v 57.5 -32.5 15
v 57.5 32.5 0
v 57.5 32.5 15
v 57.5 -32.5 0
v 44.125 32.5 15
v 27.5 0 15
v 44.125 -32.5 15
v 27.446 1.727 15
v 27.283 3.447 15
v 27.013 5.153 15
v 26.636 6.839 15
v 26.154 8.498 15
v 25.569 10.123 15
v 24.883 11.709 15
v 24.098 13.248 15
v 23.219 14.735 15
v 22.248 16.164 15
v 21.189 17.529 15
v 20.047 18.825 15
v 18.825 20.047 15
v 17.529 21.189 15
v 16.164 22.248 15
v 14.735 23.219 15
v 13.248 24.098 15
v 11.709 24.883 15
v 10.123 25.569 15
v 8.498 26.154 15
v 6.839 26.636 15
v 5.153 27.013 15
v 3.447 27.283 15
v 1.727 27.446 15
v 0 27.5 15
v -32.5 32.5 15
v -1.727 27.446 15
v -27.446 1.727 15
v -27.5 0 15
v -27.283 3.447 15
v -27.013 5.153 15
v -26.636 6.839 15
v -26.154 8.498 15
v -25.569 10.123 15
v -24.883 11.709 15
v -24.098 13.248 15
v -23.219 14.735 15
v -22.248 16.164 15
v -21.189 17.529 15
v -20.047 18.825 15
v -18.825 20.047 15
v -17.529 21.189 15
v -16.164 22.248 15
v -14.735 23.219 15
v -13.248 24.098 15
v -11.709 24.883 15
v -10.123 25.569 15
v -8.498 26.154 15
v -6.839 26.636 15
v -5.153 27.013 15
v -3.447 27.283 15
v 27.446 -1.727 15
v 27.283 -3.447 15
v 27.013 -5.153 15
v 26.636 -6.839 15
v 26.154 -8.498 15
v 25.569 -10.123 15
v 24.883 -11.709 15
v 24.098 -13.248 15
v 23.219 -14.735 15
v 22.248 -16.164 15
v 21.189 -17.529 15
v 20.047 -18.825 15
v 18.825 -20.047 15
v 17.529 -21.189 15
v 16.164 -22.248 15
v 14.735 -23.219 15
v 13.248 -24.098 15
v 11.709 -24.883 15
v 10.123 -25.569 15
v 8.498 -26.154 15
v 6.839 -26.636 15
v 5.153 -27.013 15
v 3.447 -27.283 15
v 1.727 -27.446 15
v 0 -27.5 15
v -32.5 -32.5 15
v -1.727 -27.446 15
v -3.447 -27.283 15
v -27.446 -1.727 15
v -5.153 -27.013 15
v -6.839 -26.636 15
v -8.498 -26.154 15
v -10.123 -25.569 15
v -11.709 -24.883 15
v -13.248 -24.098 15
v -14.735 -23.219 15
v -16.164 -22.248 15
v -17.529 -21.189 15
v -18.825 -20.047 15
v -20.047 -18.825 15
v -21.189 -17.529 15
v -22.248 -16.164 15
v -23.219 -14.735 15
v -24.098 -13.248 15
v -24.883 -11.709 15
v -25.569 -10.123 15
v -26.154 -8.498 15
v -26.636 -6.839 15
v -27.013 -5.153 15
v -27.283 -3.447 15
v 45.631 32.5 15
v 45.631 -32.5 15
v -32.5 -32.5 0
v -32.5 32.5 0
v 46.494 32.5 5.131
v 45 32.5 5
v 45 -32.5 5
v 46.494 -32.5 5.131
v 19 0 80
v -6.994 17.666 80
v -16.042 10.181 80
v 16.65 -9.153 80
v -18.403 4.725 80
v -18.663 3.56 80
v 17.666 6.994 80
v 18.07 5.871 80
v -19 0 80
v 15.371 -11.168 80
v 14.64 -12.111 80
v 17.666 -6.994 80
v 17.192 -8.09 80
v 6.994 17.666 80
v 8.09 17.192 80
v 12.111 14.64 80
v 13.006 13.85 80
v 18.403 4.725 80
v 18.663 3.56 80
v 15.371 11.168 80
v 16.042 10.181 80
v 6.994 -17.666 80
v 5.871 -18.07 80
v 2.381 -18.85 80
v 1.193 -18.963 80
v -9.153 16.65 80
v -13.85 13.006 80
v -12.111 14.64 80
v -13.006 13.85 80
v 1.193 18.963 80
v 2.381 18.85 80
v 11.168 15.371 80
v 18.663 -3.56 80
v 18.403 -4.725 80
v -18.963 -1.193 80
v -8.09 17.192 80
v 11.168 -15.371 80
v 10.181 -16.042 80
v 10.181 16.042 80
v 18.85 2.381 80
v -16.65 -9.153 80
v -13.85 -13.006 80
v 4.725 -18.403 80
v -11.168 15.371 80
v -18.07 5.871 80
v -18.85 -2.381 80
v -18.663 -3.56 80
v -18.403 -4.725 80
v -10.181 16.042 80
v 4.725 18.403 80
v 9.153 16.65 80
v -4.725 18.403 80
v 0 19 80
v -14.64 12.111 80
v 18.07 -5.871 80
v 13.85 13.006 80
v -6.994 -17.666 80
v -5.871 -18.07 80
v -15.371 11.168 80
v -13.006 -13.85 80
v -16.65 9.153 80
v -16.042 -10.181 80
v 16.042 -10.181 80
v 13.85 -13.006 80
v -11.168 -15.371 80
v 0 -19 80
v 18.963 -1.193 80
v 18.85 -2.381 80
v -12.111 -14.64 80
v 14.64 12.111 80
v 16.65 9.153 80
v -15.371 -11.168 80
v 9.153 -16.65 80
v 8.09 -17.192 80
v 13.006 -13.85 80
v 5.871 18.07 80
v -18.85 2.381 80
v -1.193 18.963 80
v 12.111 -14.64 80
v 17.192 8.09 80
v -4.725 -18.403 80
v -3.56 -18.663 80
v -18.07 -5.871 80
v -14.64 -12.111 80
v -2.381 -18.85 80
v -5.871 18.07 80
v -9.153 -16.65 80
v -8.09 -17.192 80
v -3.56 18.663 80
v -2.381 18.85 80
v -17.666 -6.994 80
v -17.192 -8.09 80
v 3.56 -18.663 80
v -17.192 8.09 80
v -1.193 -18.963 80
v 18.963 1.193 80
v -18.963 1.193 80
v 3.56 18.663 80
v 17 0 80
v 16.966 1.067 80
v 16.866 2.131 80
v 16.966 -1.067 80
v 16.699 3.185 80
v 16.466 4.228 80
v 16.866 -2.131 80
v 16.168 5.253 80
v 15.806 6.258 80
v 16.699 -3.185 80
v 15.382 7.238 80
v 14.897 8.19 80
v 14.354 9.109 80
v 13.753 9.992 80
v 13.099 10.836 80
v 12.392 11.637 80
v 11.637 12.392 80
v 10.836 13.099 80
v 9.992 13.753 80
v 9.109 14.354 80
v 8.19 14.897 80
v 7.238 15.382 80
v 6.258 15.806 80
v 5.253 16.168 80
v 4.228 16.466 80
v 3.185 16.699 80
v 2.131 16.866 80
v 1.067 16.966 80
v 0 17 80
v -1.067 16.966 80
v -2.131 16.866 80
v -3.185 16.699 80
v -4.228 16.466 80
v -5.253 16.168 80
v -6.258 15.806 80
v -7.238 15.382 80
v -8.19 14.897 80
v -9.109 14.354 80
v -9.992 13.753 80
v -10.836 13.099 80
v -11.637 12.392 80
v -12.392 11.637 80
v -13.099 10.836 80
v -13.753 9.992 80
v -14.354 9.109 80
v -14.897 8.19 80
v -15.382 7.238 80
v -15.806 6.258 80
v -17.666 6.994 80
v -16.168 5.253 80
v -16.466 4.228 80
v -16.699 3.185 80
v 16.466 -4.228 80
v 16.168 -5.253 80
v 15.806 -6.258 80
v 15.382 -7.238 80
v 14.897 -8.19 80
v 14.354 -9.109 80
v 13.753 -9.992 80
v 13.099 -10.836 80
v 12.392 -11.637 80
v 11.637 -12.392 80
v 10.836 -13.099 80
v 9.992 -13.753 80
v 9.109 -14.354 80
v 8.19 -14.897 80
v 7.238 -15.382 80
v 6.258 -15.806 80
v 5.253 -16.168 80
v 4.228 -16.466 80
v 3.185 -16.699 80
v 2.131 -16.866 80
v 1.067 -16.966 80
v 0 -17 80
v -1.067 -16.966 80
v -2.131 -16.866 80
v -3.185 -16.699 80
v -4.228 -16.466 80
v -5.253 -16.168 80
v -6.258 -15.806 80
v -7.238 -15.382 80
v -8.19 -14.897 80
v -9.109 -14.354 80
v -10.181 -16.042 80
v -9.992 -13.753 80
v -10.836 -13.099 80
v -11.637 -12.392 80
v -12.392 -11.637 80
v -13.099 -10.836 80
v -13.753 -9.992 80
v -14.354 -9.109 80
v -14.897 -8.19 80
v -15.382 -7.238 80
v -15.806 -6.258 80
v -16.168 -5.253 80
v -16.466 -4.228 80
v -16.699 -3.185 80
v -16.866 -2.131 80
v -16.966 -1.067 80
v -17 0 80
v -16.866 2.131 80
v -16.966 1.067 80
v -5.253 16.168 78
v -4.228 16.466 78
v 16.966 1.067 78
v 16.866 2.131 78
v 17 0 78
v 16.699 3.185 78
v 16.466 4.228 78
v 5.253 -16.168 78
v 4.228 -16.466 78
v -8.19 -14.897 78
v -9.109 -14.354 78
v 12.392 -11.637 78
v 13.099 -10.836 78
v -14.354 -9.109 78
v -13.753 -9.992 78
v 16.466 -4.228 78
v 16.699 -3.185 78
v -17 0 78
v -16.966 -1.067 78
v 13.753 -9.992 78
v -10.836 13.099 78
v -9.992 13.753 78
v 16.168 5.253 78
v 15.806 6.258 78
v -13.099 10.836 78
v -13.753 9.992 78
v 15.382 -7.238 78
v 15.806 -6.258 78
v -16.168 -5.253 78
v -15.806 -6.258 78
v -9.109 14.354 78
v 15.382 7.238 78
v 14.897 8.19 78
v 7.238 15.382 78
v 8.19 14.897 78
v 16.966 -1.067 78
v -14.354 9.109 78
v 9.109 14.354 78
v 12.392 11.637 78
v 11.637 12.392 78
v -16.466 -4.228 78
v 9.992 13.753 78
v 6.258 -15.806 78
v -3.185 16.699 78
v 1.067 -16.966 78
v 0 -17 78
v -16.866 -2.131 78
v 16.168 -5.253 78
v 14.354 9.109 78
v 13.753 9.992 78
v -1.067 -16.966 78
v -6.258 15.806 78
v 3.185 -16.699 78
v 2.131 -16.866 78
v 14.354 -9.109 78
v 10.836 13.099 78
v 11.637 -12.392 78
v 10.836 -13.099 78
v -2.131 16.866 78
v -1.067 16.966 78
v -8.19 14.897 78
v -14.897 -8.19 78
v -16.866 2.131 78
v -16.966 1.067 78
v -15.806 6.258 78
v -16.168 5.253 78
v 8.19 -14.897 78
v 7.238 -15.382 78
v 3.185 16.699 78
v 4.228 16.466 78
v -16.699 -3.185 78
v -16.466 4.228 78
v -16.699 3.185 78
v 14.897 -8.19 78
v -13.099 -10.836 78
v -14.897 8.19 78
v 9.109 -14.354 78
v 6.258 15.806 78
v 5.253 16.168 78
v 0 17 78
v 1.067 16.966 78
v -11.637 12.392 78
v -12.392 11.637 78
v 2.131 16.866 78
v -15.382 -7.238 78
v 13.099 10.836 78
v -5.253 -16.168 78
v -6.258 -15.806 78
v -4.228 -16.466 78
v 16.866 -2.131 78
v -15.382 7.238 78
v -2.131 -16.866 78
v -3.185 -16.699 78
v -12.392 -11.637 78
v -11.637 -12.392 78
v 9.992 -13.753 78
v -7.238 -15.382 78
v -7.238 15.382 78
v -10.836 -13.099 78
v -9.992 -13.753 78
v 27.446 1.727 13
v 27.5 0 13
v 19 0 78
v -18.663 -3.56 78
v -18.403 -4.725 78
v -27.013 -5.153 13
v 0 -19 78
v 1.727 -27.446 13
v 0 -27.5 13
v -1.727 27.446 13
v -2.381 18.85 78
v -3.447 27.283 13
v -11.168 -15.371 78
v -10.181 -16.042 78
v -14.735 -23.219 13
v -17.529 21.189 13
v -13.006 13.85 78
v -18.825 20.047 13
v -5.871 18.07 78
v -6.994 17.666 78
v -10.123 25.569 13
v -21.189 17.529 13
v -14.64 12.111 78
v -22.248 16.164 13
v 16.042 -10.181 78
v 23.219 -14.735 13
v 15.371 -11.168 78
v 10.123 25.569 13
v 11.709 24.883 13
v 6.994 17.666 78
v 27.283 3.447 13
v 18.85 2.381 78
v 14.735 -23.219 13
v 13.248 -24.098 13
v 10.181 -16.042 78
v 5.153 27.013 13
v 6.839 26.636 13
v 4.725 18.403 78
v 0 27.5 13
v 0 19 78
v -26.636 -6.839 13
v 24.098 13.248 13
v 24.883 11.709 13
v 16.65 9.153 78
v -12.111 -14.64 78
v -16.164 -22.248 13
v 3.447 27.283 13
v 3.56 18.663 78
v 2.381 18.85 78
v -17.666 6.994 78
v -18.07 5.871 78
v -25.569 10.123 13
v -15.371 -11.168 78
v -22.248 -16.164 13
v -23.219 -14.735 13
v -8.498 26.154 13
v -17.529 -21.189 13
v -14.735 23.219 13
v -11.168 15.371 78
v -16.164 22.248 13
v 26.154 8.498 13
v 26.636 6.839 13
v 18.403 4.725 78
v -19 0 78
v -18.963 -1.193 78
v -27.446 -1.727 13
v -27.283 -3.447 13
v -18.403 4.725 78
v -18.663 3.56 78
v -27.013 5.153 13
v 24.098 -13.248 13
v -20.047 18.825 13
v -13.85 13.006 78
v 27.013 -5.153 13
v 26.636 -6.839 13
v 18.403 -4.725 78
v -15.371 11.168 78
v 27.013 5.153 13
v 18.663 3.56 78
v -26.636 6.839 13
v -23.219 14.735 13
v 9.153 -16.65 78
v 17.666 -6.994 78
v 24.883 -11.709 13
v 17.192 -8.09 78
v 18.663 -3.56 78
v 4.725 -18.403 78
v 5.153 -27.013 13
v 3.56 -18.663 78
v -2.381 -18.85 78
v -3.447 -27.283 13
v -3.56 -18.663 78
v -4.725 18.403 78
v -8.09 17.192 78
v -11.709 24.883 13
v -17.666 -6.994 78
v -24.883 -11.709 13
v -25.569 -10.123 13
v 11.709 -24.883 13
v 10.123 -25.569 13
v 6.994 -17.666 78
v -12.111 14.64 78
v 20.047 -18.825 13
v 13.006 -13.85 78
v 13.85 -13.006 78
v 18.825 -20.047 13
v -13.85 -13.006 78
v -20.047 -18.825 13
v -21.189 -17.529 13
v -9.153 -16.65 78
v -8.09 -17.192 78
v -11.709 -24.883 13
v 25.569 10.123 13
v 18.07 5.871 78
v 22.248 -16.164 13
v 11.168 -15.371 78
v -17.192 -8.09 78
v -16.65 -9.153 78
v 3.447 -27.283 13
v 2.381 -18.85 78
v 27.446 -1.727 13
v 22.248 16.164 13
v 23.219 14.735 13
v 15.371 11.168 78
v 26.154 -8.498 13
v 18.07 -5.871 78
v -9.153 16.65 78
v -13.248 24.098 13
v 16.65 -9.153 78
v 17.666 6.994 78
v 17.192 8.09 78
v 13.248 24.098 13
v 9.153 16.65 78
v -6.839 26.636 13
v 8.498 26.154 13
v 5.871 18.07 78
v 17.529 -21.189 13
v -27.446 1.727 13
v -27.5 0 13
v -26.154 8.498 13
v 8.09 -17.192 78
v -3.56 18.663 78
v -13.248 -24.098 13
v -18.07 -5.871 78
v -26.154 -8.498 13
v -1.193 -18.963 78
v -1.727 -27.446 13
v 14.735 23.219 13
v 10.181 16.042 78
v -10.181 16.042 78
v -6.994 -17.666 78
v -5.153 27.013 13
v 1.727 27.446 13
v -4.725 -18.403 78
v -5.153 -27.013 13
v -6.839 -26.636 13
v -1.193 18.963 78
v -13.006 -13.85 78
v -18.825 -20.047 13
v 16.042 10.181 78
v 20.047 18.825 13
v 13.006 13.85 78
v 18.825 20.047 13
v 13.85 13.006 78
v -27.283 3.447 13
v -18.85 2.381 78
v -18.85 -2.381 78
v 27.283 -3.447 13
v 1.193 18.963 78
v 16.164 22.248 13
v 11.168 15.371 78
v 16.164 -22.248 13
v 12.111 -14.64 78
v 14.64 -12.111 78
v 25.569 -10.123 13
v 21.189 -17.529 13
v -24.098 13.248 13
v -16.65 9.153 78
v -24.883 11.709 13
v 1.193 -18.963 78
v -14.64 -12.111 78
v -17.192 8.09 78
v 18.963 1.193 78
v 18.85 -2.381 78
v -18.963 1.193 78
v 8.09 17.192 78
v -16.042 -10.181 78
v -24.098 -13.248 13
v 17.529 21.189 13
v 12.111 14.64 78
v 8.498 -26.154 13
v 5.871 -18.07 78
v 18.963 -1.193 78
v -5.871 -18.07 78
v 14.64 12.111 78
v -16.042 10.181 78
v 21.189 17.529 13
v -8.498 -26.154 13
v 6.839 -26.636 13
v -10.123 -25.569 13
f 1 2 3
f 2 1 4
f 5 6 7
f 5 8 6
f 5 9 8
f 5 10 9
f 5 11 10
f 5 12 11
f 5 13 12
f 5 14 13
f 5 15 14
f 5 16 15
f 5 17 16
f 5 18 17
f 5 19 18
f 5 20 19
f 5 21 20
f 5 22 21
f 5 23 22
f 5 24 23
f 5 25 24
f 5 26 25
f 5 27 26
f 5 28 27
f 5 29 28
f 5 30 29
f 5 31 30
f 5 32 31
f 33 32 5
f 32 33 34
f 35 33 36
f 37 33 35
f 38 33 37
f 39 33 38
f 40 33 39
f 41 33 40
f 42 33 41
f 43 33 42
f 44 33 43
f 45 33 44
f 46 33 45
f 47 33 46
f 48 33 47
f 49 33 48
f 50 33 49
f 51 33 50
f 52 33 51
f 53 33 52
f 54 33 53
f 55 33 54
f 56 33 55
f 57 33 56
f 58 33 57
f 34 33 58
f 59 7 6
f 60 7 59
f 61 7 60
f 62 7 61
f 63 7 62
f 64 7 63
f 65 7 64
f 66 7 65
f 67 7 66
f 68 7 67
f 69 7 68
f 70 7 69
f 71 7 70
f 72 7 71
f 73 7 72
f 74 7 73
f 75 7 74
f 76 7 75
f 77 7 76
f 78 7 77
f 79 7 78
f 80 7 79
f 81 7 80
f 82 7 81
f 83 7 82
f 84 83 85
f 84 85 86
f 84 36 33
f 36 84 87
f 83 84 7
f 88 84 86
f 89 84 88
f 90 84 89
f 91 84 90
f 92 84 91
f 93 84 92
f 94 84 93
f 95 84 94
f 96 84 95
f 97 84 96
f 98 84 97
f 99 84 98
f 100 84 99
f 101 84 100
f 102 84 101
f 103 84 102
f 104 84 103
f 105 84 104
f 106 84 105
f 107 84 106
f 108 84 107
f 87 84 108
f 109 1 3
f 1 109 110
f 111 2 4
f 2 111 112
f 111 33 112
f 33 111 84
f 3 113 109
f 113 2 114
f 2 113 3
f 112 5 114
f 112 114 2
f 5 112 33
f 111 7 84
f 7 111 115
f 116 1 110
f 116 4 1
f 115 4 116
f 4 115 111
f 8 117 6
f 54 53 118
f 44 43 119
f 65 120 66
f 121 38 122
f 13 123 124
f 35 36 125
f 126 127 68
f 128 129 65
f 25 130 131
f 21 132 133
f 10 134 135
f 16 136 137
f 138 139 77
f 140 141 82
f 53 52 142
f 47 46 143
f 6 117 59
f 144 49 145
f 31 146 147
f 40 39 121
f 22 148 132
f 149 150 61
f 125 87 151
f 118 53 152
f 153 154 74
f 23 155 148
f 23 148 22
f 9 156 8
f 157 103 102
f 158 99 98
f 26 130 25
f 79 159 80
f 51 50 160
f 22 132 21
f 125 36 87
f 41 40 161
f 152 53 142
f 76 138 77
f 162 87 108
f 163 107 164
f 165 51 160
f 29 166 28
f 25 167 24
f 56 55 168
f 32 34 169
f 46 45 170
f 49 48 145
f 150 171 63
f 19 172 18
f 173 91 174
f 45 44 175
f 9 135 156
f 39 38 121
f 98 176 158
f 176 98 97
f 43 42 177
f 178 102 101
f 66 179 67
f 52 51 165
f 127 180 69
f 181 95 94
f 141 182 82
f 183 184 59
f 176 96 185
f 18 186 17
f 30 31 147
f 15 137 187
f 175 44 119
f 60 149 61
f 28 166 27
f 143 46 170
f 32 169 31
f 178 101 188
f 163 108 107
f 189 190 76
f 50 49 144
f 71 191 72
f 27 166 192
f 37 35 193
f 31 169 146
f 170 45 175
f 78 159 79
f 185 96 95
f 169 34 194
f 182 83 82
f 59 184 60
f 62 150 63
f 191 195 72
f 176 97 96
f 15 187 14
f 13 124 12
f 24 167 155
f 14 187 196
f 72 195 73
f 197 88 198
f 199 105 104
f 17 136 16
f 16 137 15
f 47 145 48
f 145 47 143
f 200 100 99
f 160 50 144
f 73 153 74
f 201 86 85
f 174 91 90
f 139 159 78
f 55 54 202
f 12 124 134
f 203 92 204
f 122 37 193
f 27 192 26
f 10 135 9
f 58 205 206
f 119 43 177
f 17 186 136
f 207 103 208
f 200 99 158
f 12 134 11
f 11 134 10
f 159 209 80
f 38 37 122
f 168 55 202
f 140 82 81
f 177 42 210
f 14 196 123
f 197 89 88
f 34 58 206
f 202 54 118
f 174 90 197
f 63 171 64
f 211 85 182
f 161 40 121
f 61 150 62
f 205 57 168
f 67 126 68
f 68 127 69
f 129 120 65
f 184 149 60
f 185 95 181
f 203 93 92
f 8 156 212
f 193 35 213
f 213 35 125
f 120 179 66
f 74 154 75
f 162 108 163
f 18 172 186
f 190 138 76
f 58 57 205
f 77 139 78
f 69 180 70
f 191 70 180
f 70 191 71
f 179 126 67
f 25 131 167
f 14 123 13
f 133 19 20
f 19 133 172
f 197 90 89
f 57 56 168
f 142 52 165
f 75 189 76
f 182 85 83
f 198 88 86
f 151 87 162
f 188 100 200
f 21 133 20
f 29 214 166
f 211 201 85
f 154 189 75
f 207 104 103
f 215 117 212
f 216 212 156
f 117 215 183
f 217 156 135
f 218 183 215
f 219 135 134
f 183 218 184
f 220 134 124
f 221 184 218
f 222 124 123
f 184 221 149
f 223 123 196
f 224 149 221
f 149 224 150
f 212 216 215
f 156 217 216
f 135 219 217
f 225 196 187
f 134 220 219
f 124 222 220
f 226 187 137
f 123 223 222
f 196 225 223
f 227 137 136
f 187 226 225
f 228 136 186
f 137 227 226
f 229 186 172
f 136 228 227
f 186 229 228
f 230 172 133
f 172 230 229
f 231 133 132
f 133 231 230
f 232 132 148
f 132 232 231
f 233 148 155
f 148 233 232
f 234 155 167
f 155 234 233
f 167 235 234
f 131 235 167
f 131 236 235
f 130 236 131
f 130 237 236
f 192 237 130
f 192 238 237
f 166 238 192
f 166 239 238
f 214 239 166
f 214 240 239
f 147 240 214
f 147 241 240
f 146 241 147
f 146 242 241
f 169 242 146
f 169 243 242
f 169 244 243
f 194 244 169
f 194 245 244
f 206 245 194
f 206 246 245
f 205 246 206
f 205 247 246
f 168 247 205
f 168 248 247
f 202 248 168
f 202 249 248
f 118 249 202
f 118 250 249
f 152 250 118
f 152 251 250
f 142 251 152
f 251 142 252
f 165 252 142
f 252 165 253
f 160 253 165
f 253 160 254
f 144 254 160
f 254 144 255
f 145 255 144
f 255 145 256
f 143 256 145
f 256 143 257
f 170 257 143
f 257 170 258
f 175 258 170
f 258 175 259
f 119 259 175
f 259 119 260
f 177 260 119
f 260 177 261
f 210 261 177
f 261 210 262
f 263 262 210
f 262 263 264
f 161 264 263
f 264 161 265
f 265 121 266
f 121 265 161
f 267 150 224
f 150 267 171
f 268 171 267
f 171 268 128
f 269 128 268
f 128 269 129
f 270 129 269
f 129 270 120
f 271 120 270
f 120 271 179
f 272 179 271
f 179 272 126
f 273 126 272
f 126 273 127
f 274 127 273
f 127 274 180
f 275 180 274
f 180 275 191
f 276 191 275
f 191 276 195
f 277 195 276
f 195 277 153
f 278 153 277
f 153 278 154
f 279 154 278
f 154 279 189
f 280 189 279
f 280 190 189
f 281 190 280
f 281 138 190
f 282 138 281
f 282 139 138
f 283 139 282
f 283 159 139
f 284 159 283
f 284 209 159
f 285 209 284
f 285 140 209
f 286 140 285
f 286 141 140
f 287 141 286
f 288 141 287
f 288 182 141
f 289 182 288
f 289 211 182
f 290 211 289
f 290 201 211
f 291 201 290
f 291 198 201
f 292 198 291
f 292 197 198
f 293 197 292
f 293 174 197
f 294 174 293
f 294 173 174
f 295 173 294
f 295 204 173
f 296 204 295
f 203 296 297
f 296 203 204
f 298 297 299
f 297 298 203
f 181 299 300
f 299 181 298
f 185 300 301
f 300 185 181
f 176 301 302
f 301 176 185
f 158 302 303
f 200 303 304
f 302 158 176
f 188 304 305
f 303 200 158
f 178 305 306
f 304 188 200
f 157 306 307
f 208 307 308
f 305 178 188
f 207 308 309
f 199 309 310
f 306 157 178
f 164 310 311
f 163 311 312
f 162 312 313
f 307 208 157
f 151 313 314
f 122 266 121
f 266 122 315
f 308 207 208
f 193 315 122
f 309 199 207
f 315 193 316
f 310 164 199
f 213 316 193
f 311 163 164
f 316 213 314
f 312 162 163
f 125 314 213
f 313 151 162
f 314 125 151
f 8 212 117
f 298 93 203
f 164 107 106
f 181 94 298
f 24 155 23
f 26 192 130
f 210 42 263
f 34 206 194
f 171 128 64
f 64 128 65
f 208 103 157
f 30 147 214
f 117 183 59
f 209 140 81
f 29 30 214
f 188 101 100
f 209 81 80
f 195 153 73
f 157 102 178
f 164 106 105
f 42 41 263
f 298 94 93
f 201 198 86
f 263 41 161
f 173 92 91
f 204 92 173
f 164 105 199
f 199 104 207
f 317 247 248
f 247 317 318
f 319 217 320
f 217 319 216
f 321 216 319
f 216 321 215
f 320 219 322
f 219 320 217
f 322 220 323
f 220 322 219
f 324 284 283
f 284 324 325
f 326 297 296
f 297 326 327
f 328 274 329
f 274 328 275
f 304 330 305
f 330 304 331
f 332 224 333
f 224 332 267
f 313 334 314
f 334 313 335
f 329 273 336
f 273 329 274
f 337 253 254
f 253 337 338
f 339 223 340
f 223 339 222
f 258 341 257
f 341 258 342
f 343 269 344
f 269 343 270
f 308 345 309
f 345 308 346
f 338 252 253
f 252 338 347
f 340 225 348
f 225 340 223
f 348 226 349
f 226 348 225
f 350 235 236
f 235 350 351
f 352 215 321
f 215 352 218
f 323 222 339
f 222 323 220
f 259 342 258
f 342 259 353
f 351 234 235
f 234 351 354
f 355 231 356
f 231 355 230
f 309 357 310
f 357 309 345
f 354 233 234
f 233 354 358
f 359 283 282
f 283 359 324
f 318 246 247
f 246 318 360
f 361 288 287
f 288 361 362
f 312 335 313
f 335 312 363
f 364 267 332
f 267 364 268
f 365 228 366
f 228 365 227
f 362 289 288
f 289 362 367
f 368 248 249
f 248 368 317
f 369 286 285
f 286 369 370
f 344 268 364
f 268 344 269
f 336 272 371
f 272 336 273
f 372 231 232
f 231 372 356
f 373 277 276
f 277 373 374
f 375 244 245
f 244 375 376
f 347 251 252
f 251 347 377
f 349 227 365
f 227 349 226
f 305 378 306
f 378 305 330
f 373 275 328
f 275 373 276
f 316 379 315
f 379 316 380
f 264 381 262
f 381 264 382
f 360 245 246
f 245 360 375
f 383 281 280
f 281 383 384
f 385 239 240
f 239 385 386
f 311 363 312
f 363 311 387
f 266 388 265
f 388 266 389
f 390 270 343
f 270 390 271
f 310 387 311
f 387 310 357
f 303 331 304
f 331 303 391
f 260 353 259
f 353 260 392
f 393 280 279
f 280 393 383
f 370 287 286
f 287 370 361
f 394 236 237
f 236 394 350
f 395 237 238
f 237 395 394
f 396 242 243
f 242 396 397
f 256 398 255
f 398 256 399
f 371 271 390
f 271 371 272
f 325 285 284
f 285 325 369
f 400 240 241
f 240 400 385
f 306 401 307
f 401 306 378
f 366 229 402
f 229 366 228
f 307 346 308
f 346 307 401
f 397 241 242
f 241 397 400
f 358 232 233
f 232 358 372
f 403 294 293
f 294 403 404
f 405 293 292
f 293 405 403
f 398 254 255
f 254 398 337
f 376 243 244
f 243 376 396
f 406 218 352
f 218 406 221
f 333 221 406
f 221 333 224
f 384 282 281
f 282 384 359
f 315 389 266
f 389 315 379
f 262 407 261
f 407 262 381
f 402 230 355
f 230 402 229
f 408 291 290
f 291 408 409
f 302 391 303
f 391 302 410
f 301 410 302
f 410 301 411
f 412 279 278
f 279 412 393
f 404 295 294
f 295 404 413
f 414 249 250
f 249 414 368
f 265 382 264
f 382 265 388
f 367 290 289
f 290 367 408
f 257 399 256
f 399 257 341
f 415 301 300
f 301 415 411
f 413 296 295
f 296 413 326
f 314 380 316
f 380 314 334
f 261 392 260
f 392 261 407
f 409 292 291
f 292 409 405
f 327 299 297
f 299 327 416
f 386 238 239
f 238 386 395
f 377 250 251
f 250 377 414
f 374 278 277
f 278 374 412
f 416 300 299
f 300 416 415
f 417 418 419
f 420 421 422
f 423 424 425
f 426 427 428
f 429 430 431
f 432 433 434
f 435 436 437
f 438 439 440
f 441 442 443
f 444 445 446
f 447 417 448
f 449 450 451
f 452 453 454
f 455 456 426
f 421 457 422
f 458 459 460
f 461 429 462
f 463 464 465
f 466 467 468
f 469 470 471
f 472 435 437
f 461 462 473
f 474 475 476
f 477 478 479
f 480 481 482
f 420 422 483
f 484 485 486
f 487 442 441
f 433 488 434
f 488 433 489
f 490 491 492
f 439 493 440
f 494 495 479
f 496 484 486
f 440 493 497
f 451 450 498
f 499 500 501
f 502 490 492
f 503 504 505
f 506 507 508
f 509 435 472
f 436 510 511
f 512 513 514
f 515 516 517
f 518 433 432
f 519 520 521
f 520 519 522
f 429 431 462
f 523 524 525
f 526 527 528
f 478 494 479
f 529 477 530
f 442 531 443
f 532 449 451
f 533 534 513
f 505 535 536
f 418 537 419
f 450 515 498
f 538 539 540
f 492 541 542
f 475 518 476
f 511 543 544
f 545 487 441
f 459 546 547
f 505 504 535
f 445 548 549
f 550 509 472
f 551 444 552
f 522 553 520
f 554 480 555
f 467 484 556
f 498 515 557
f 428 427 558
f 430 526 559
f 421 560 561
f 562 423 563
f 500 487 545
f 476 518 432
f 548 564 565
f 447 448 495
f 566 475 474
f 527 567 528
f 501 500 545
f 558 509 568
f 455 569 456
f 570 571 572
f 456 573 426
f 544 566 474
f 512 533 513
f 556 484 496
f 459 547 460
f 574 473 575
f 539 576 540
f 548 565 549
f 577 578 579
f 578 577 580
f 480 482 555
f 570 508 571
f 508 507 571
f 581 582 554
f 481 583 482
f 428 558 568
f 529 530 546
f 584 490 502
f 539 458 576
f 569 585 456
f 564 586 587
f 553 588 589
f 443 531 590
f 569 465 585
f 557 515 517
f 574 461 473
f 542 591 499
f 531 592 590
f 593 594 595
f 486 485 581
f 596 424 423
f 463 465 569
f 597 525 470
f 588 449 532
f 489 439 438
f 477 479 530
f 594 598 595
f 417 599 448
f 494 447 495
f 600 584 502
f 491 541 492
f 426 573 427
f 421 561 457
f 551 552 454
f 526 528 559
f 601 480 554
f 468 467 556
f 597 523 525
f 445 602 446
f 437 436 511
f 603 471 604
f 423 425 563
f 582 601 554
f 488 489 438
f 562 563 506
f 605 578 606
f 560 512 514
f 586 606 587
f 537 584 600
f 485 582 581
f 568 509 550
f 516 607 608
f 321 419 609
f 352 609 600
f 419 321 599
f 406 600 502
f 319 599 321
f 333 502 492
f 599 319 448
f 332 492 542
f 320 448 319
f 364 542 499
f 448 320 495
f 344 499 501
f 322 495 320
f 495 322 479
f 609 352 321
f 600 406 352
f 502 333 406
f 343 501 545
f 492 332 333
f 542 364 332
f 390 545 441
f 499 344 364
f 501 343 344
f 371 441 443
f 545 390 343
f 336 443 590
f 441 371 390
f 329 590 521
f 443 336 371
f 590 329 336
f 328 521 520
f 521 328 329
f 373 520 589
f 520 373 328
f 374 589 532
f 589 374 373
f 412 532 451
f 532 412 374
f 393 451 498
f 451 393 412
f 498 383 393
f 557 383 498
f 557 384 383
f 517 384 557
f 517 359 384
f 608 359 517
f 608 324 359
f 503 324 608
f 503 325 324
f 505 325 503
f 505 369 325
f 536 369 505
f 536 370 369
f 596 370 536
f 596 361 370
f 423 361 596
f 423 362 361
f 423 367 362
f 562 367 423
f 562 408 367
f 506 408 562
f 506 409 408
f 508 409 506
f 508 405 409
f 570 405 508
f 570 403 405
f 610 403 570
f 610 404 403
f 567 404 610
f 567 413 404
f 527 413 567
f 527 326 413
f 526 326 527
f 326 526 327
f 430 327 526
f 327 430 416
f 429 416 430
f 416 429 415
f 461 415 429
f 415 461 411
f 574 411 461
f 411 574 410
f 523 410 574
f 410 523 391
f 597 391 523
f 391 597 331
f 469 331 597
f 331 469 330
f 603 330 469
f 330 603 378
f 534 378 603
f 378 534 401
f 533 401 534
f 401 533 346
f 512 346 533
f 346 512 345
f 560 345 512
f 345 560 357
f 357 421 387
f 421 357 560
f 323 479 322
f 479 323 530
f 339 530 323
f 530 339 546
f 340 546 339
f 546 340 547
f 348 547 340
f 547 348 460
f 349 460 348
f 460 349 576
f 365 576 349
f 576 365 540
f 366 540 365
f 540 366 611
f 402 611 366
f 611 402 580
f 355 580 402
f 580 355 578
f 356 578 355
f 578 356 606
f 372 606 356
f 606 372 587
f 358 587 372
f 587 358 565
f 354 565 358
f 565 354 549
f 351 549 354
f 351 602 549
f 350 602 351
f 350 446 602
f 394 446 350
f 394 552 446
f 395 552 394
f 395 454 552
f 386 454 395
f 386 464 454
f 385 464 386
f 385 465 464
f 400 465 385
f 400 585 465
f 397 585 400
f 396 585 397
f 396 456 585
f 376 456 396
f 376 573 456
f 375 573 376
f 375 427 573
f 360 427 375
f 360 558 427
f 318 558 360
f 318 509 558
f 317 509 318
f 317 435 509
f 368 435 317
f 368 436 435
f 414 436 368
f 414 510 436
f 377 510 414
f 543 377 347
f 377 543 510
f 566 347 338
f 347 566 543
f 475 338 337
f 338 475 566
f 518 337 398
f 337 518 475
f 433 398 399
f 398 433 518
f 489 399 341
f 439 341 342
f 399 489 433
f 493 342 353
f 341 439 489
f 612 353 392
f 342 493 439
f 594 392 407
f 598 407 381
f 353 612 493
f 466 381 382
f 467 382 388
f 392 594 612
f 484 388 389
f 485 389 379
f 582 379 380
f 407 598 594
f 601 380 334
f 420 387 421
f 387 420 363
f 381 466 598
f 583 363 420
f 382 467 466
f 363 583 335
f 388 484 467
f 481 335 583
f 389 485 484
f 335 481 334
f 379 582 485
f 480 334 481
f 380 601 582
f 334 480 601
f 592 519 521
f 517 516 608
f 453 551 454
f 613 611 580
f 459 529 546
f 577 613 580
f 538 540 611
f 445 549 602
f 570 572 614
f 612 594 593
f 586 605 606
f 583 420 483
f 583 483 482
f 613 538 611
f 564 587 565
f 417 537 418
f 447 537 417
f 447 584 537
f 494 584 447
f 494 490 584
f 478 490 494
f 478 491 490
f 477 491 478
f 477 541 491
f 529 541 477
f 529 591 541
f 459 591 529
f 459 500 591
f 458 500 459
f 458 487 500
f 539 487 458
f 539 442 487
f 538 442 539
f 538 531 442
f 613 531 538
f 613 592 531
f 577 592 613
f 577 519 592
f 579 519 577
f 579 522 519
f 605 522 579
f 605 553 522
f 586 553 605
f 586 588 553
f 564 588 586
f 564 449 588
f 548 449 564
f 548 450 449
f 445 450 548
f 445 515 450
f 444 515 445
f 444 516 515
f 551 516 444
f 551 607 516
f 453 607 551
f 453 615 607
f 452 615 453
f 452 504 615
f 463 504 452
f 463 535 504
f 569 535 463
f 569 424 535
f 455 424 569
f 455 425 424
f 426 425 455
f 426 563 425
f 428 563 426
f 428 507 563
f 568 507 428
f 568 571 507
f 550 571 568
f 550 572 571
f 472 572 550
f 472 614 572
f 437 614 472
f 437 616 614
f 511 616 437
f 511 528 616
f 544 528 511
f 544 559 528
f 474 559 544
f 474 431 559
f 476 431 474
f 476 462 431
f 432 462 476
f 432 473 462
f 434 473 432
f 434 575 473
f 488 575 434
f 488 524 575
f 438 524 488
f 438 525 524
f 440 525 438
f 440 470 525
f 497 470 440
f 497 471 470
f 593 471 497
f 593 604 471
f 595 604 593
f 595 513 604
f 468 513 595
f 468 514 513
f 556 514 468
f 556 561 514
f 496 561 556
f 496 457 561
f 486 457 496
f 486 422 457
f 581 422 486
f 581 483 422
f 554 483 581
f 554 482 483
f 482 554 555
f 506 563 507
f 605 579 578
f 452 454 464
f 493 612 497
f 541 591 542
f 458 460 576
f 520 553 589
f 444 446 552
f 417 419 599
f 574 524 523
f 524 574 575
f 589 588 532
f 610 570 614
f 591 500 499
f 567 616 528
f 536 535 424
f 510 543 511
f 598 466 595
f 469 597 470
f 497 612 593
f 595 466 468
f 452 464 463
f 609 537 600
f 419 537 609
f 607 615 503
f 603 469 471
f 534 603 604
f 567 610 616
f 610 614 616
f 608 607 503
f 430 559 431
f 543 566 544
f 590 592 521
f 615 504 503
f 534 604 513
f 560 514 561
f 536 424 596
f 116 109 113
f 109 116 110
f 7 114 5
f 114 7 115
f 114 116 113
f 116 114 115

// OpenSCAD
//
// ktRACK46
//
 
gap1 = 0.001;
gap2 = 0.002;
th = 2;


base();




module base()
{
difference()
{
    union()
    {
        translate([-65/2, -65/2, 0]) cube([90, 65, 15]);
        translate([0, 0, 15]) cylinder(r1=55/2, r2=38/2, h=65, $fn=100);
    }
    translate([0, 0, 15+65-2-gap1]) cylinder(r1=(38-4)/2, r2=(38-4)/2, h=2+gap2, $fn=100);
    translate([0, 0, 15-2]) cylinder(r1=55/2, r2=38/2, h=65, $fn=100);
    //translate([0, 0, -gap1]) cylinder(r1=55/2, r2=55/2, h=15-2+gap2, $fn=100);
    
    translate([45, -65/2, 5]) rotate([0, -5, 0]) cube([1.5, 65, 30]);
}
}
